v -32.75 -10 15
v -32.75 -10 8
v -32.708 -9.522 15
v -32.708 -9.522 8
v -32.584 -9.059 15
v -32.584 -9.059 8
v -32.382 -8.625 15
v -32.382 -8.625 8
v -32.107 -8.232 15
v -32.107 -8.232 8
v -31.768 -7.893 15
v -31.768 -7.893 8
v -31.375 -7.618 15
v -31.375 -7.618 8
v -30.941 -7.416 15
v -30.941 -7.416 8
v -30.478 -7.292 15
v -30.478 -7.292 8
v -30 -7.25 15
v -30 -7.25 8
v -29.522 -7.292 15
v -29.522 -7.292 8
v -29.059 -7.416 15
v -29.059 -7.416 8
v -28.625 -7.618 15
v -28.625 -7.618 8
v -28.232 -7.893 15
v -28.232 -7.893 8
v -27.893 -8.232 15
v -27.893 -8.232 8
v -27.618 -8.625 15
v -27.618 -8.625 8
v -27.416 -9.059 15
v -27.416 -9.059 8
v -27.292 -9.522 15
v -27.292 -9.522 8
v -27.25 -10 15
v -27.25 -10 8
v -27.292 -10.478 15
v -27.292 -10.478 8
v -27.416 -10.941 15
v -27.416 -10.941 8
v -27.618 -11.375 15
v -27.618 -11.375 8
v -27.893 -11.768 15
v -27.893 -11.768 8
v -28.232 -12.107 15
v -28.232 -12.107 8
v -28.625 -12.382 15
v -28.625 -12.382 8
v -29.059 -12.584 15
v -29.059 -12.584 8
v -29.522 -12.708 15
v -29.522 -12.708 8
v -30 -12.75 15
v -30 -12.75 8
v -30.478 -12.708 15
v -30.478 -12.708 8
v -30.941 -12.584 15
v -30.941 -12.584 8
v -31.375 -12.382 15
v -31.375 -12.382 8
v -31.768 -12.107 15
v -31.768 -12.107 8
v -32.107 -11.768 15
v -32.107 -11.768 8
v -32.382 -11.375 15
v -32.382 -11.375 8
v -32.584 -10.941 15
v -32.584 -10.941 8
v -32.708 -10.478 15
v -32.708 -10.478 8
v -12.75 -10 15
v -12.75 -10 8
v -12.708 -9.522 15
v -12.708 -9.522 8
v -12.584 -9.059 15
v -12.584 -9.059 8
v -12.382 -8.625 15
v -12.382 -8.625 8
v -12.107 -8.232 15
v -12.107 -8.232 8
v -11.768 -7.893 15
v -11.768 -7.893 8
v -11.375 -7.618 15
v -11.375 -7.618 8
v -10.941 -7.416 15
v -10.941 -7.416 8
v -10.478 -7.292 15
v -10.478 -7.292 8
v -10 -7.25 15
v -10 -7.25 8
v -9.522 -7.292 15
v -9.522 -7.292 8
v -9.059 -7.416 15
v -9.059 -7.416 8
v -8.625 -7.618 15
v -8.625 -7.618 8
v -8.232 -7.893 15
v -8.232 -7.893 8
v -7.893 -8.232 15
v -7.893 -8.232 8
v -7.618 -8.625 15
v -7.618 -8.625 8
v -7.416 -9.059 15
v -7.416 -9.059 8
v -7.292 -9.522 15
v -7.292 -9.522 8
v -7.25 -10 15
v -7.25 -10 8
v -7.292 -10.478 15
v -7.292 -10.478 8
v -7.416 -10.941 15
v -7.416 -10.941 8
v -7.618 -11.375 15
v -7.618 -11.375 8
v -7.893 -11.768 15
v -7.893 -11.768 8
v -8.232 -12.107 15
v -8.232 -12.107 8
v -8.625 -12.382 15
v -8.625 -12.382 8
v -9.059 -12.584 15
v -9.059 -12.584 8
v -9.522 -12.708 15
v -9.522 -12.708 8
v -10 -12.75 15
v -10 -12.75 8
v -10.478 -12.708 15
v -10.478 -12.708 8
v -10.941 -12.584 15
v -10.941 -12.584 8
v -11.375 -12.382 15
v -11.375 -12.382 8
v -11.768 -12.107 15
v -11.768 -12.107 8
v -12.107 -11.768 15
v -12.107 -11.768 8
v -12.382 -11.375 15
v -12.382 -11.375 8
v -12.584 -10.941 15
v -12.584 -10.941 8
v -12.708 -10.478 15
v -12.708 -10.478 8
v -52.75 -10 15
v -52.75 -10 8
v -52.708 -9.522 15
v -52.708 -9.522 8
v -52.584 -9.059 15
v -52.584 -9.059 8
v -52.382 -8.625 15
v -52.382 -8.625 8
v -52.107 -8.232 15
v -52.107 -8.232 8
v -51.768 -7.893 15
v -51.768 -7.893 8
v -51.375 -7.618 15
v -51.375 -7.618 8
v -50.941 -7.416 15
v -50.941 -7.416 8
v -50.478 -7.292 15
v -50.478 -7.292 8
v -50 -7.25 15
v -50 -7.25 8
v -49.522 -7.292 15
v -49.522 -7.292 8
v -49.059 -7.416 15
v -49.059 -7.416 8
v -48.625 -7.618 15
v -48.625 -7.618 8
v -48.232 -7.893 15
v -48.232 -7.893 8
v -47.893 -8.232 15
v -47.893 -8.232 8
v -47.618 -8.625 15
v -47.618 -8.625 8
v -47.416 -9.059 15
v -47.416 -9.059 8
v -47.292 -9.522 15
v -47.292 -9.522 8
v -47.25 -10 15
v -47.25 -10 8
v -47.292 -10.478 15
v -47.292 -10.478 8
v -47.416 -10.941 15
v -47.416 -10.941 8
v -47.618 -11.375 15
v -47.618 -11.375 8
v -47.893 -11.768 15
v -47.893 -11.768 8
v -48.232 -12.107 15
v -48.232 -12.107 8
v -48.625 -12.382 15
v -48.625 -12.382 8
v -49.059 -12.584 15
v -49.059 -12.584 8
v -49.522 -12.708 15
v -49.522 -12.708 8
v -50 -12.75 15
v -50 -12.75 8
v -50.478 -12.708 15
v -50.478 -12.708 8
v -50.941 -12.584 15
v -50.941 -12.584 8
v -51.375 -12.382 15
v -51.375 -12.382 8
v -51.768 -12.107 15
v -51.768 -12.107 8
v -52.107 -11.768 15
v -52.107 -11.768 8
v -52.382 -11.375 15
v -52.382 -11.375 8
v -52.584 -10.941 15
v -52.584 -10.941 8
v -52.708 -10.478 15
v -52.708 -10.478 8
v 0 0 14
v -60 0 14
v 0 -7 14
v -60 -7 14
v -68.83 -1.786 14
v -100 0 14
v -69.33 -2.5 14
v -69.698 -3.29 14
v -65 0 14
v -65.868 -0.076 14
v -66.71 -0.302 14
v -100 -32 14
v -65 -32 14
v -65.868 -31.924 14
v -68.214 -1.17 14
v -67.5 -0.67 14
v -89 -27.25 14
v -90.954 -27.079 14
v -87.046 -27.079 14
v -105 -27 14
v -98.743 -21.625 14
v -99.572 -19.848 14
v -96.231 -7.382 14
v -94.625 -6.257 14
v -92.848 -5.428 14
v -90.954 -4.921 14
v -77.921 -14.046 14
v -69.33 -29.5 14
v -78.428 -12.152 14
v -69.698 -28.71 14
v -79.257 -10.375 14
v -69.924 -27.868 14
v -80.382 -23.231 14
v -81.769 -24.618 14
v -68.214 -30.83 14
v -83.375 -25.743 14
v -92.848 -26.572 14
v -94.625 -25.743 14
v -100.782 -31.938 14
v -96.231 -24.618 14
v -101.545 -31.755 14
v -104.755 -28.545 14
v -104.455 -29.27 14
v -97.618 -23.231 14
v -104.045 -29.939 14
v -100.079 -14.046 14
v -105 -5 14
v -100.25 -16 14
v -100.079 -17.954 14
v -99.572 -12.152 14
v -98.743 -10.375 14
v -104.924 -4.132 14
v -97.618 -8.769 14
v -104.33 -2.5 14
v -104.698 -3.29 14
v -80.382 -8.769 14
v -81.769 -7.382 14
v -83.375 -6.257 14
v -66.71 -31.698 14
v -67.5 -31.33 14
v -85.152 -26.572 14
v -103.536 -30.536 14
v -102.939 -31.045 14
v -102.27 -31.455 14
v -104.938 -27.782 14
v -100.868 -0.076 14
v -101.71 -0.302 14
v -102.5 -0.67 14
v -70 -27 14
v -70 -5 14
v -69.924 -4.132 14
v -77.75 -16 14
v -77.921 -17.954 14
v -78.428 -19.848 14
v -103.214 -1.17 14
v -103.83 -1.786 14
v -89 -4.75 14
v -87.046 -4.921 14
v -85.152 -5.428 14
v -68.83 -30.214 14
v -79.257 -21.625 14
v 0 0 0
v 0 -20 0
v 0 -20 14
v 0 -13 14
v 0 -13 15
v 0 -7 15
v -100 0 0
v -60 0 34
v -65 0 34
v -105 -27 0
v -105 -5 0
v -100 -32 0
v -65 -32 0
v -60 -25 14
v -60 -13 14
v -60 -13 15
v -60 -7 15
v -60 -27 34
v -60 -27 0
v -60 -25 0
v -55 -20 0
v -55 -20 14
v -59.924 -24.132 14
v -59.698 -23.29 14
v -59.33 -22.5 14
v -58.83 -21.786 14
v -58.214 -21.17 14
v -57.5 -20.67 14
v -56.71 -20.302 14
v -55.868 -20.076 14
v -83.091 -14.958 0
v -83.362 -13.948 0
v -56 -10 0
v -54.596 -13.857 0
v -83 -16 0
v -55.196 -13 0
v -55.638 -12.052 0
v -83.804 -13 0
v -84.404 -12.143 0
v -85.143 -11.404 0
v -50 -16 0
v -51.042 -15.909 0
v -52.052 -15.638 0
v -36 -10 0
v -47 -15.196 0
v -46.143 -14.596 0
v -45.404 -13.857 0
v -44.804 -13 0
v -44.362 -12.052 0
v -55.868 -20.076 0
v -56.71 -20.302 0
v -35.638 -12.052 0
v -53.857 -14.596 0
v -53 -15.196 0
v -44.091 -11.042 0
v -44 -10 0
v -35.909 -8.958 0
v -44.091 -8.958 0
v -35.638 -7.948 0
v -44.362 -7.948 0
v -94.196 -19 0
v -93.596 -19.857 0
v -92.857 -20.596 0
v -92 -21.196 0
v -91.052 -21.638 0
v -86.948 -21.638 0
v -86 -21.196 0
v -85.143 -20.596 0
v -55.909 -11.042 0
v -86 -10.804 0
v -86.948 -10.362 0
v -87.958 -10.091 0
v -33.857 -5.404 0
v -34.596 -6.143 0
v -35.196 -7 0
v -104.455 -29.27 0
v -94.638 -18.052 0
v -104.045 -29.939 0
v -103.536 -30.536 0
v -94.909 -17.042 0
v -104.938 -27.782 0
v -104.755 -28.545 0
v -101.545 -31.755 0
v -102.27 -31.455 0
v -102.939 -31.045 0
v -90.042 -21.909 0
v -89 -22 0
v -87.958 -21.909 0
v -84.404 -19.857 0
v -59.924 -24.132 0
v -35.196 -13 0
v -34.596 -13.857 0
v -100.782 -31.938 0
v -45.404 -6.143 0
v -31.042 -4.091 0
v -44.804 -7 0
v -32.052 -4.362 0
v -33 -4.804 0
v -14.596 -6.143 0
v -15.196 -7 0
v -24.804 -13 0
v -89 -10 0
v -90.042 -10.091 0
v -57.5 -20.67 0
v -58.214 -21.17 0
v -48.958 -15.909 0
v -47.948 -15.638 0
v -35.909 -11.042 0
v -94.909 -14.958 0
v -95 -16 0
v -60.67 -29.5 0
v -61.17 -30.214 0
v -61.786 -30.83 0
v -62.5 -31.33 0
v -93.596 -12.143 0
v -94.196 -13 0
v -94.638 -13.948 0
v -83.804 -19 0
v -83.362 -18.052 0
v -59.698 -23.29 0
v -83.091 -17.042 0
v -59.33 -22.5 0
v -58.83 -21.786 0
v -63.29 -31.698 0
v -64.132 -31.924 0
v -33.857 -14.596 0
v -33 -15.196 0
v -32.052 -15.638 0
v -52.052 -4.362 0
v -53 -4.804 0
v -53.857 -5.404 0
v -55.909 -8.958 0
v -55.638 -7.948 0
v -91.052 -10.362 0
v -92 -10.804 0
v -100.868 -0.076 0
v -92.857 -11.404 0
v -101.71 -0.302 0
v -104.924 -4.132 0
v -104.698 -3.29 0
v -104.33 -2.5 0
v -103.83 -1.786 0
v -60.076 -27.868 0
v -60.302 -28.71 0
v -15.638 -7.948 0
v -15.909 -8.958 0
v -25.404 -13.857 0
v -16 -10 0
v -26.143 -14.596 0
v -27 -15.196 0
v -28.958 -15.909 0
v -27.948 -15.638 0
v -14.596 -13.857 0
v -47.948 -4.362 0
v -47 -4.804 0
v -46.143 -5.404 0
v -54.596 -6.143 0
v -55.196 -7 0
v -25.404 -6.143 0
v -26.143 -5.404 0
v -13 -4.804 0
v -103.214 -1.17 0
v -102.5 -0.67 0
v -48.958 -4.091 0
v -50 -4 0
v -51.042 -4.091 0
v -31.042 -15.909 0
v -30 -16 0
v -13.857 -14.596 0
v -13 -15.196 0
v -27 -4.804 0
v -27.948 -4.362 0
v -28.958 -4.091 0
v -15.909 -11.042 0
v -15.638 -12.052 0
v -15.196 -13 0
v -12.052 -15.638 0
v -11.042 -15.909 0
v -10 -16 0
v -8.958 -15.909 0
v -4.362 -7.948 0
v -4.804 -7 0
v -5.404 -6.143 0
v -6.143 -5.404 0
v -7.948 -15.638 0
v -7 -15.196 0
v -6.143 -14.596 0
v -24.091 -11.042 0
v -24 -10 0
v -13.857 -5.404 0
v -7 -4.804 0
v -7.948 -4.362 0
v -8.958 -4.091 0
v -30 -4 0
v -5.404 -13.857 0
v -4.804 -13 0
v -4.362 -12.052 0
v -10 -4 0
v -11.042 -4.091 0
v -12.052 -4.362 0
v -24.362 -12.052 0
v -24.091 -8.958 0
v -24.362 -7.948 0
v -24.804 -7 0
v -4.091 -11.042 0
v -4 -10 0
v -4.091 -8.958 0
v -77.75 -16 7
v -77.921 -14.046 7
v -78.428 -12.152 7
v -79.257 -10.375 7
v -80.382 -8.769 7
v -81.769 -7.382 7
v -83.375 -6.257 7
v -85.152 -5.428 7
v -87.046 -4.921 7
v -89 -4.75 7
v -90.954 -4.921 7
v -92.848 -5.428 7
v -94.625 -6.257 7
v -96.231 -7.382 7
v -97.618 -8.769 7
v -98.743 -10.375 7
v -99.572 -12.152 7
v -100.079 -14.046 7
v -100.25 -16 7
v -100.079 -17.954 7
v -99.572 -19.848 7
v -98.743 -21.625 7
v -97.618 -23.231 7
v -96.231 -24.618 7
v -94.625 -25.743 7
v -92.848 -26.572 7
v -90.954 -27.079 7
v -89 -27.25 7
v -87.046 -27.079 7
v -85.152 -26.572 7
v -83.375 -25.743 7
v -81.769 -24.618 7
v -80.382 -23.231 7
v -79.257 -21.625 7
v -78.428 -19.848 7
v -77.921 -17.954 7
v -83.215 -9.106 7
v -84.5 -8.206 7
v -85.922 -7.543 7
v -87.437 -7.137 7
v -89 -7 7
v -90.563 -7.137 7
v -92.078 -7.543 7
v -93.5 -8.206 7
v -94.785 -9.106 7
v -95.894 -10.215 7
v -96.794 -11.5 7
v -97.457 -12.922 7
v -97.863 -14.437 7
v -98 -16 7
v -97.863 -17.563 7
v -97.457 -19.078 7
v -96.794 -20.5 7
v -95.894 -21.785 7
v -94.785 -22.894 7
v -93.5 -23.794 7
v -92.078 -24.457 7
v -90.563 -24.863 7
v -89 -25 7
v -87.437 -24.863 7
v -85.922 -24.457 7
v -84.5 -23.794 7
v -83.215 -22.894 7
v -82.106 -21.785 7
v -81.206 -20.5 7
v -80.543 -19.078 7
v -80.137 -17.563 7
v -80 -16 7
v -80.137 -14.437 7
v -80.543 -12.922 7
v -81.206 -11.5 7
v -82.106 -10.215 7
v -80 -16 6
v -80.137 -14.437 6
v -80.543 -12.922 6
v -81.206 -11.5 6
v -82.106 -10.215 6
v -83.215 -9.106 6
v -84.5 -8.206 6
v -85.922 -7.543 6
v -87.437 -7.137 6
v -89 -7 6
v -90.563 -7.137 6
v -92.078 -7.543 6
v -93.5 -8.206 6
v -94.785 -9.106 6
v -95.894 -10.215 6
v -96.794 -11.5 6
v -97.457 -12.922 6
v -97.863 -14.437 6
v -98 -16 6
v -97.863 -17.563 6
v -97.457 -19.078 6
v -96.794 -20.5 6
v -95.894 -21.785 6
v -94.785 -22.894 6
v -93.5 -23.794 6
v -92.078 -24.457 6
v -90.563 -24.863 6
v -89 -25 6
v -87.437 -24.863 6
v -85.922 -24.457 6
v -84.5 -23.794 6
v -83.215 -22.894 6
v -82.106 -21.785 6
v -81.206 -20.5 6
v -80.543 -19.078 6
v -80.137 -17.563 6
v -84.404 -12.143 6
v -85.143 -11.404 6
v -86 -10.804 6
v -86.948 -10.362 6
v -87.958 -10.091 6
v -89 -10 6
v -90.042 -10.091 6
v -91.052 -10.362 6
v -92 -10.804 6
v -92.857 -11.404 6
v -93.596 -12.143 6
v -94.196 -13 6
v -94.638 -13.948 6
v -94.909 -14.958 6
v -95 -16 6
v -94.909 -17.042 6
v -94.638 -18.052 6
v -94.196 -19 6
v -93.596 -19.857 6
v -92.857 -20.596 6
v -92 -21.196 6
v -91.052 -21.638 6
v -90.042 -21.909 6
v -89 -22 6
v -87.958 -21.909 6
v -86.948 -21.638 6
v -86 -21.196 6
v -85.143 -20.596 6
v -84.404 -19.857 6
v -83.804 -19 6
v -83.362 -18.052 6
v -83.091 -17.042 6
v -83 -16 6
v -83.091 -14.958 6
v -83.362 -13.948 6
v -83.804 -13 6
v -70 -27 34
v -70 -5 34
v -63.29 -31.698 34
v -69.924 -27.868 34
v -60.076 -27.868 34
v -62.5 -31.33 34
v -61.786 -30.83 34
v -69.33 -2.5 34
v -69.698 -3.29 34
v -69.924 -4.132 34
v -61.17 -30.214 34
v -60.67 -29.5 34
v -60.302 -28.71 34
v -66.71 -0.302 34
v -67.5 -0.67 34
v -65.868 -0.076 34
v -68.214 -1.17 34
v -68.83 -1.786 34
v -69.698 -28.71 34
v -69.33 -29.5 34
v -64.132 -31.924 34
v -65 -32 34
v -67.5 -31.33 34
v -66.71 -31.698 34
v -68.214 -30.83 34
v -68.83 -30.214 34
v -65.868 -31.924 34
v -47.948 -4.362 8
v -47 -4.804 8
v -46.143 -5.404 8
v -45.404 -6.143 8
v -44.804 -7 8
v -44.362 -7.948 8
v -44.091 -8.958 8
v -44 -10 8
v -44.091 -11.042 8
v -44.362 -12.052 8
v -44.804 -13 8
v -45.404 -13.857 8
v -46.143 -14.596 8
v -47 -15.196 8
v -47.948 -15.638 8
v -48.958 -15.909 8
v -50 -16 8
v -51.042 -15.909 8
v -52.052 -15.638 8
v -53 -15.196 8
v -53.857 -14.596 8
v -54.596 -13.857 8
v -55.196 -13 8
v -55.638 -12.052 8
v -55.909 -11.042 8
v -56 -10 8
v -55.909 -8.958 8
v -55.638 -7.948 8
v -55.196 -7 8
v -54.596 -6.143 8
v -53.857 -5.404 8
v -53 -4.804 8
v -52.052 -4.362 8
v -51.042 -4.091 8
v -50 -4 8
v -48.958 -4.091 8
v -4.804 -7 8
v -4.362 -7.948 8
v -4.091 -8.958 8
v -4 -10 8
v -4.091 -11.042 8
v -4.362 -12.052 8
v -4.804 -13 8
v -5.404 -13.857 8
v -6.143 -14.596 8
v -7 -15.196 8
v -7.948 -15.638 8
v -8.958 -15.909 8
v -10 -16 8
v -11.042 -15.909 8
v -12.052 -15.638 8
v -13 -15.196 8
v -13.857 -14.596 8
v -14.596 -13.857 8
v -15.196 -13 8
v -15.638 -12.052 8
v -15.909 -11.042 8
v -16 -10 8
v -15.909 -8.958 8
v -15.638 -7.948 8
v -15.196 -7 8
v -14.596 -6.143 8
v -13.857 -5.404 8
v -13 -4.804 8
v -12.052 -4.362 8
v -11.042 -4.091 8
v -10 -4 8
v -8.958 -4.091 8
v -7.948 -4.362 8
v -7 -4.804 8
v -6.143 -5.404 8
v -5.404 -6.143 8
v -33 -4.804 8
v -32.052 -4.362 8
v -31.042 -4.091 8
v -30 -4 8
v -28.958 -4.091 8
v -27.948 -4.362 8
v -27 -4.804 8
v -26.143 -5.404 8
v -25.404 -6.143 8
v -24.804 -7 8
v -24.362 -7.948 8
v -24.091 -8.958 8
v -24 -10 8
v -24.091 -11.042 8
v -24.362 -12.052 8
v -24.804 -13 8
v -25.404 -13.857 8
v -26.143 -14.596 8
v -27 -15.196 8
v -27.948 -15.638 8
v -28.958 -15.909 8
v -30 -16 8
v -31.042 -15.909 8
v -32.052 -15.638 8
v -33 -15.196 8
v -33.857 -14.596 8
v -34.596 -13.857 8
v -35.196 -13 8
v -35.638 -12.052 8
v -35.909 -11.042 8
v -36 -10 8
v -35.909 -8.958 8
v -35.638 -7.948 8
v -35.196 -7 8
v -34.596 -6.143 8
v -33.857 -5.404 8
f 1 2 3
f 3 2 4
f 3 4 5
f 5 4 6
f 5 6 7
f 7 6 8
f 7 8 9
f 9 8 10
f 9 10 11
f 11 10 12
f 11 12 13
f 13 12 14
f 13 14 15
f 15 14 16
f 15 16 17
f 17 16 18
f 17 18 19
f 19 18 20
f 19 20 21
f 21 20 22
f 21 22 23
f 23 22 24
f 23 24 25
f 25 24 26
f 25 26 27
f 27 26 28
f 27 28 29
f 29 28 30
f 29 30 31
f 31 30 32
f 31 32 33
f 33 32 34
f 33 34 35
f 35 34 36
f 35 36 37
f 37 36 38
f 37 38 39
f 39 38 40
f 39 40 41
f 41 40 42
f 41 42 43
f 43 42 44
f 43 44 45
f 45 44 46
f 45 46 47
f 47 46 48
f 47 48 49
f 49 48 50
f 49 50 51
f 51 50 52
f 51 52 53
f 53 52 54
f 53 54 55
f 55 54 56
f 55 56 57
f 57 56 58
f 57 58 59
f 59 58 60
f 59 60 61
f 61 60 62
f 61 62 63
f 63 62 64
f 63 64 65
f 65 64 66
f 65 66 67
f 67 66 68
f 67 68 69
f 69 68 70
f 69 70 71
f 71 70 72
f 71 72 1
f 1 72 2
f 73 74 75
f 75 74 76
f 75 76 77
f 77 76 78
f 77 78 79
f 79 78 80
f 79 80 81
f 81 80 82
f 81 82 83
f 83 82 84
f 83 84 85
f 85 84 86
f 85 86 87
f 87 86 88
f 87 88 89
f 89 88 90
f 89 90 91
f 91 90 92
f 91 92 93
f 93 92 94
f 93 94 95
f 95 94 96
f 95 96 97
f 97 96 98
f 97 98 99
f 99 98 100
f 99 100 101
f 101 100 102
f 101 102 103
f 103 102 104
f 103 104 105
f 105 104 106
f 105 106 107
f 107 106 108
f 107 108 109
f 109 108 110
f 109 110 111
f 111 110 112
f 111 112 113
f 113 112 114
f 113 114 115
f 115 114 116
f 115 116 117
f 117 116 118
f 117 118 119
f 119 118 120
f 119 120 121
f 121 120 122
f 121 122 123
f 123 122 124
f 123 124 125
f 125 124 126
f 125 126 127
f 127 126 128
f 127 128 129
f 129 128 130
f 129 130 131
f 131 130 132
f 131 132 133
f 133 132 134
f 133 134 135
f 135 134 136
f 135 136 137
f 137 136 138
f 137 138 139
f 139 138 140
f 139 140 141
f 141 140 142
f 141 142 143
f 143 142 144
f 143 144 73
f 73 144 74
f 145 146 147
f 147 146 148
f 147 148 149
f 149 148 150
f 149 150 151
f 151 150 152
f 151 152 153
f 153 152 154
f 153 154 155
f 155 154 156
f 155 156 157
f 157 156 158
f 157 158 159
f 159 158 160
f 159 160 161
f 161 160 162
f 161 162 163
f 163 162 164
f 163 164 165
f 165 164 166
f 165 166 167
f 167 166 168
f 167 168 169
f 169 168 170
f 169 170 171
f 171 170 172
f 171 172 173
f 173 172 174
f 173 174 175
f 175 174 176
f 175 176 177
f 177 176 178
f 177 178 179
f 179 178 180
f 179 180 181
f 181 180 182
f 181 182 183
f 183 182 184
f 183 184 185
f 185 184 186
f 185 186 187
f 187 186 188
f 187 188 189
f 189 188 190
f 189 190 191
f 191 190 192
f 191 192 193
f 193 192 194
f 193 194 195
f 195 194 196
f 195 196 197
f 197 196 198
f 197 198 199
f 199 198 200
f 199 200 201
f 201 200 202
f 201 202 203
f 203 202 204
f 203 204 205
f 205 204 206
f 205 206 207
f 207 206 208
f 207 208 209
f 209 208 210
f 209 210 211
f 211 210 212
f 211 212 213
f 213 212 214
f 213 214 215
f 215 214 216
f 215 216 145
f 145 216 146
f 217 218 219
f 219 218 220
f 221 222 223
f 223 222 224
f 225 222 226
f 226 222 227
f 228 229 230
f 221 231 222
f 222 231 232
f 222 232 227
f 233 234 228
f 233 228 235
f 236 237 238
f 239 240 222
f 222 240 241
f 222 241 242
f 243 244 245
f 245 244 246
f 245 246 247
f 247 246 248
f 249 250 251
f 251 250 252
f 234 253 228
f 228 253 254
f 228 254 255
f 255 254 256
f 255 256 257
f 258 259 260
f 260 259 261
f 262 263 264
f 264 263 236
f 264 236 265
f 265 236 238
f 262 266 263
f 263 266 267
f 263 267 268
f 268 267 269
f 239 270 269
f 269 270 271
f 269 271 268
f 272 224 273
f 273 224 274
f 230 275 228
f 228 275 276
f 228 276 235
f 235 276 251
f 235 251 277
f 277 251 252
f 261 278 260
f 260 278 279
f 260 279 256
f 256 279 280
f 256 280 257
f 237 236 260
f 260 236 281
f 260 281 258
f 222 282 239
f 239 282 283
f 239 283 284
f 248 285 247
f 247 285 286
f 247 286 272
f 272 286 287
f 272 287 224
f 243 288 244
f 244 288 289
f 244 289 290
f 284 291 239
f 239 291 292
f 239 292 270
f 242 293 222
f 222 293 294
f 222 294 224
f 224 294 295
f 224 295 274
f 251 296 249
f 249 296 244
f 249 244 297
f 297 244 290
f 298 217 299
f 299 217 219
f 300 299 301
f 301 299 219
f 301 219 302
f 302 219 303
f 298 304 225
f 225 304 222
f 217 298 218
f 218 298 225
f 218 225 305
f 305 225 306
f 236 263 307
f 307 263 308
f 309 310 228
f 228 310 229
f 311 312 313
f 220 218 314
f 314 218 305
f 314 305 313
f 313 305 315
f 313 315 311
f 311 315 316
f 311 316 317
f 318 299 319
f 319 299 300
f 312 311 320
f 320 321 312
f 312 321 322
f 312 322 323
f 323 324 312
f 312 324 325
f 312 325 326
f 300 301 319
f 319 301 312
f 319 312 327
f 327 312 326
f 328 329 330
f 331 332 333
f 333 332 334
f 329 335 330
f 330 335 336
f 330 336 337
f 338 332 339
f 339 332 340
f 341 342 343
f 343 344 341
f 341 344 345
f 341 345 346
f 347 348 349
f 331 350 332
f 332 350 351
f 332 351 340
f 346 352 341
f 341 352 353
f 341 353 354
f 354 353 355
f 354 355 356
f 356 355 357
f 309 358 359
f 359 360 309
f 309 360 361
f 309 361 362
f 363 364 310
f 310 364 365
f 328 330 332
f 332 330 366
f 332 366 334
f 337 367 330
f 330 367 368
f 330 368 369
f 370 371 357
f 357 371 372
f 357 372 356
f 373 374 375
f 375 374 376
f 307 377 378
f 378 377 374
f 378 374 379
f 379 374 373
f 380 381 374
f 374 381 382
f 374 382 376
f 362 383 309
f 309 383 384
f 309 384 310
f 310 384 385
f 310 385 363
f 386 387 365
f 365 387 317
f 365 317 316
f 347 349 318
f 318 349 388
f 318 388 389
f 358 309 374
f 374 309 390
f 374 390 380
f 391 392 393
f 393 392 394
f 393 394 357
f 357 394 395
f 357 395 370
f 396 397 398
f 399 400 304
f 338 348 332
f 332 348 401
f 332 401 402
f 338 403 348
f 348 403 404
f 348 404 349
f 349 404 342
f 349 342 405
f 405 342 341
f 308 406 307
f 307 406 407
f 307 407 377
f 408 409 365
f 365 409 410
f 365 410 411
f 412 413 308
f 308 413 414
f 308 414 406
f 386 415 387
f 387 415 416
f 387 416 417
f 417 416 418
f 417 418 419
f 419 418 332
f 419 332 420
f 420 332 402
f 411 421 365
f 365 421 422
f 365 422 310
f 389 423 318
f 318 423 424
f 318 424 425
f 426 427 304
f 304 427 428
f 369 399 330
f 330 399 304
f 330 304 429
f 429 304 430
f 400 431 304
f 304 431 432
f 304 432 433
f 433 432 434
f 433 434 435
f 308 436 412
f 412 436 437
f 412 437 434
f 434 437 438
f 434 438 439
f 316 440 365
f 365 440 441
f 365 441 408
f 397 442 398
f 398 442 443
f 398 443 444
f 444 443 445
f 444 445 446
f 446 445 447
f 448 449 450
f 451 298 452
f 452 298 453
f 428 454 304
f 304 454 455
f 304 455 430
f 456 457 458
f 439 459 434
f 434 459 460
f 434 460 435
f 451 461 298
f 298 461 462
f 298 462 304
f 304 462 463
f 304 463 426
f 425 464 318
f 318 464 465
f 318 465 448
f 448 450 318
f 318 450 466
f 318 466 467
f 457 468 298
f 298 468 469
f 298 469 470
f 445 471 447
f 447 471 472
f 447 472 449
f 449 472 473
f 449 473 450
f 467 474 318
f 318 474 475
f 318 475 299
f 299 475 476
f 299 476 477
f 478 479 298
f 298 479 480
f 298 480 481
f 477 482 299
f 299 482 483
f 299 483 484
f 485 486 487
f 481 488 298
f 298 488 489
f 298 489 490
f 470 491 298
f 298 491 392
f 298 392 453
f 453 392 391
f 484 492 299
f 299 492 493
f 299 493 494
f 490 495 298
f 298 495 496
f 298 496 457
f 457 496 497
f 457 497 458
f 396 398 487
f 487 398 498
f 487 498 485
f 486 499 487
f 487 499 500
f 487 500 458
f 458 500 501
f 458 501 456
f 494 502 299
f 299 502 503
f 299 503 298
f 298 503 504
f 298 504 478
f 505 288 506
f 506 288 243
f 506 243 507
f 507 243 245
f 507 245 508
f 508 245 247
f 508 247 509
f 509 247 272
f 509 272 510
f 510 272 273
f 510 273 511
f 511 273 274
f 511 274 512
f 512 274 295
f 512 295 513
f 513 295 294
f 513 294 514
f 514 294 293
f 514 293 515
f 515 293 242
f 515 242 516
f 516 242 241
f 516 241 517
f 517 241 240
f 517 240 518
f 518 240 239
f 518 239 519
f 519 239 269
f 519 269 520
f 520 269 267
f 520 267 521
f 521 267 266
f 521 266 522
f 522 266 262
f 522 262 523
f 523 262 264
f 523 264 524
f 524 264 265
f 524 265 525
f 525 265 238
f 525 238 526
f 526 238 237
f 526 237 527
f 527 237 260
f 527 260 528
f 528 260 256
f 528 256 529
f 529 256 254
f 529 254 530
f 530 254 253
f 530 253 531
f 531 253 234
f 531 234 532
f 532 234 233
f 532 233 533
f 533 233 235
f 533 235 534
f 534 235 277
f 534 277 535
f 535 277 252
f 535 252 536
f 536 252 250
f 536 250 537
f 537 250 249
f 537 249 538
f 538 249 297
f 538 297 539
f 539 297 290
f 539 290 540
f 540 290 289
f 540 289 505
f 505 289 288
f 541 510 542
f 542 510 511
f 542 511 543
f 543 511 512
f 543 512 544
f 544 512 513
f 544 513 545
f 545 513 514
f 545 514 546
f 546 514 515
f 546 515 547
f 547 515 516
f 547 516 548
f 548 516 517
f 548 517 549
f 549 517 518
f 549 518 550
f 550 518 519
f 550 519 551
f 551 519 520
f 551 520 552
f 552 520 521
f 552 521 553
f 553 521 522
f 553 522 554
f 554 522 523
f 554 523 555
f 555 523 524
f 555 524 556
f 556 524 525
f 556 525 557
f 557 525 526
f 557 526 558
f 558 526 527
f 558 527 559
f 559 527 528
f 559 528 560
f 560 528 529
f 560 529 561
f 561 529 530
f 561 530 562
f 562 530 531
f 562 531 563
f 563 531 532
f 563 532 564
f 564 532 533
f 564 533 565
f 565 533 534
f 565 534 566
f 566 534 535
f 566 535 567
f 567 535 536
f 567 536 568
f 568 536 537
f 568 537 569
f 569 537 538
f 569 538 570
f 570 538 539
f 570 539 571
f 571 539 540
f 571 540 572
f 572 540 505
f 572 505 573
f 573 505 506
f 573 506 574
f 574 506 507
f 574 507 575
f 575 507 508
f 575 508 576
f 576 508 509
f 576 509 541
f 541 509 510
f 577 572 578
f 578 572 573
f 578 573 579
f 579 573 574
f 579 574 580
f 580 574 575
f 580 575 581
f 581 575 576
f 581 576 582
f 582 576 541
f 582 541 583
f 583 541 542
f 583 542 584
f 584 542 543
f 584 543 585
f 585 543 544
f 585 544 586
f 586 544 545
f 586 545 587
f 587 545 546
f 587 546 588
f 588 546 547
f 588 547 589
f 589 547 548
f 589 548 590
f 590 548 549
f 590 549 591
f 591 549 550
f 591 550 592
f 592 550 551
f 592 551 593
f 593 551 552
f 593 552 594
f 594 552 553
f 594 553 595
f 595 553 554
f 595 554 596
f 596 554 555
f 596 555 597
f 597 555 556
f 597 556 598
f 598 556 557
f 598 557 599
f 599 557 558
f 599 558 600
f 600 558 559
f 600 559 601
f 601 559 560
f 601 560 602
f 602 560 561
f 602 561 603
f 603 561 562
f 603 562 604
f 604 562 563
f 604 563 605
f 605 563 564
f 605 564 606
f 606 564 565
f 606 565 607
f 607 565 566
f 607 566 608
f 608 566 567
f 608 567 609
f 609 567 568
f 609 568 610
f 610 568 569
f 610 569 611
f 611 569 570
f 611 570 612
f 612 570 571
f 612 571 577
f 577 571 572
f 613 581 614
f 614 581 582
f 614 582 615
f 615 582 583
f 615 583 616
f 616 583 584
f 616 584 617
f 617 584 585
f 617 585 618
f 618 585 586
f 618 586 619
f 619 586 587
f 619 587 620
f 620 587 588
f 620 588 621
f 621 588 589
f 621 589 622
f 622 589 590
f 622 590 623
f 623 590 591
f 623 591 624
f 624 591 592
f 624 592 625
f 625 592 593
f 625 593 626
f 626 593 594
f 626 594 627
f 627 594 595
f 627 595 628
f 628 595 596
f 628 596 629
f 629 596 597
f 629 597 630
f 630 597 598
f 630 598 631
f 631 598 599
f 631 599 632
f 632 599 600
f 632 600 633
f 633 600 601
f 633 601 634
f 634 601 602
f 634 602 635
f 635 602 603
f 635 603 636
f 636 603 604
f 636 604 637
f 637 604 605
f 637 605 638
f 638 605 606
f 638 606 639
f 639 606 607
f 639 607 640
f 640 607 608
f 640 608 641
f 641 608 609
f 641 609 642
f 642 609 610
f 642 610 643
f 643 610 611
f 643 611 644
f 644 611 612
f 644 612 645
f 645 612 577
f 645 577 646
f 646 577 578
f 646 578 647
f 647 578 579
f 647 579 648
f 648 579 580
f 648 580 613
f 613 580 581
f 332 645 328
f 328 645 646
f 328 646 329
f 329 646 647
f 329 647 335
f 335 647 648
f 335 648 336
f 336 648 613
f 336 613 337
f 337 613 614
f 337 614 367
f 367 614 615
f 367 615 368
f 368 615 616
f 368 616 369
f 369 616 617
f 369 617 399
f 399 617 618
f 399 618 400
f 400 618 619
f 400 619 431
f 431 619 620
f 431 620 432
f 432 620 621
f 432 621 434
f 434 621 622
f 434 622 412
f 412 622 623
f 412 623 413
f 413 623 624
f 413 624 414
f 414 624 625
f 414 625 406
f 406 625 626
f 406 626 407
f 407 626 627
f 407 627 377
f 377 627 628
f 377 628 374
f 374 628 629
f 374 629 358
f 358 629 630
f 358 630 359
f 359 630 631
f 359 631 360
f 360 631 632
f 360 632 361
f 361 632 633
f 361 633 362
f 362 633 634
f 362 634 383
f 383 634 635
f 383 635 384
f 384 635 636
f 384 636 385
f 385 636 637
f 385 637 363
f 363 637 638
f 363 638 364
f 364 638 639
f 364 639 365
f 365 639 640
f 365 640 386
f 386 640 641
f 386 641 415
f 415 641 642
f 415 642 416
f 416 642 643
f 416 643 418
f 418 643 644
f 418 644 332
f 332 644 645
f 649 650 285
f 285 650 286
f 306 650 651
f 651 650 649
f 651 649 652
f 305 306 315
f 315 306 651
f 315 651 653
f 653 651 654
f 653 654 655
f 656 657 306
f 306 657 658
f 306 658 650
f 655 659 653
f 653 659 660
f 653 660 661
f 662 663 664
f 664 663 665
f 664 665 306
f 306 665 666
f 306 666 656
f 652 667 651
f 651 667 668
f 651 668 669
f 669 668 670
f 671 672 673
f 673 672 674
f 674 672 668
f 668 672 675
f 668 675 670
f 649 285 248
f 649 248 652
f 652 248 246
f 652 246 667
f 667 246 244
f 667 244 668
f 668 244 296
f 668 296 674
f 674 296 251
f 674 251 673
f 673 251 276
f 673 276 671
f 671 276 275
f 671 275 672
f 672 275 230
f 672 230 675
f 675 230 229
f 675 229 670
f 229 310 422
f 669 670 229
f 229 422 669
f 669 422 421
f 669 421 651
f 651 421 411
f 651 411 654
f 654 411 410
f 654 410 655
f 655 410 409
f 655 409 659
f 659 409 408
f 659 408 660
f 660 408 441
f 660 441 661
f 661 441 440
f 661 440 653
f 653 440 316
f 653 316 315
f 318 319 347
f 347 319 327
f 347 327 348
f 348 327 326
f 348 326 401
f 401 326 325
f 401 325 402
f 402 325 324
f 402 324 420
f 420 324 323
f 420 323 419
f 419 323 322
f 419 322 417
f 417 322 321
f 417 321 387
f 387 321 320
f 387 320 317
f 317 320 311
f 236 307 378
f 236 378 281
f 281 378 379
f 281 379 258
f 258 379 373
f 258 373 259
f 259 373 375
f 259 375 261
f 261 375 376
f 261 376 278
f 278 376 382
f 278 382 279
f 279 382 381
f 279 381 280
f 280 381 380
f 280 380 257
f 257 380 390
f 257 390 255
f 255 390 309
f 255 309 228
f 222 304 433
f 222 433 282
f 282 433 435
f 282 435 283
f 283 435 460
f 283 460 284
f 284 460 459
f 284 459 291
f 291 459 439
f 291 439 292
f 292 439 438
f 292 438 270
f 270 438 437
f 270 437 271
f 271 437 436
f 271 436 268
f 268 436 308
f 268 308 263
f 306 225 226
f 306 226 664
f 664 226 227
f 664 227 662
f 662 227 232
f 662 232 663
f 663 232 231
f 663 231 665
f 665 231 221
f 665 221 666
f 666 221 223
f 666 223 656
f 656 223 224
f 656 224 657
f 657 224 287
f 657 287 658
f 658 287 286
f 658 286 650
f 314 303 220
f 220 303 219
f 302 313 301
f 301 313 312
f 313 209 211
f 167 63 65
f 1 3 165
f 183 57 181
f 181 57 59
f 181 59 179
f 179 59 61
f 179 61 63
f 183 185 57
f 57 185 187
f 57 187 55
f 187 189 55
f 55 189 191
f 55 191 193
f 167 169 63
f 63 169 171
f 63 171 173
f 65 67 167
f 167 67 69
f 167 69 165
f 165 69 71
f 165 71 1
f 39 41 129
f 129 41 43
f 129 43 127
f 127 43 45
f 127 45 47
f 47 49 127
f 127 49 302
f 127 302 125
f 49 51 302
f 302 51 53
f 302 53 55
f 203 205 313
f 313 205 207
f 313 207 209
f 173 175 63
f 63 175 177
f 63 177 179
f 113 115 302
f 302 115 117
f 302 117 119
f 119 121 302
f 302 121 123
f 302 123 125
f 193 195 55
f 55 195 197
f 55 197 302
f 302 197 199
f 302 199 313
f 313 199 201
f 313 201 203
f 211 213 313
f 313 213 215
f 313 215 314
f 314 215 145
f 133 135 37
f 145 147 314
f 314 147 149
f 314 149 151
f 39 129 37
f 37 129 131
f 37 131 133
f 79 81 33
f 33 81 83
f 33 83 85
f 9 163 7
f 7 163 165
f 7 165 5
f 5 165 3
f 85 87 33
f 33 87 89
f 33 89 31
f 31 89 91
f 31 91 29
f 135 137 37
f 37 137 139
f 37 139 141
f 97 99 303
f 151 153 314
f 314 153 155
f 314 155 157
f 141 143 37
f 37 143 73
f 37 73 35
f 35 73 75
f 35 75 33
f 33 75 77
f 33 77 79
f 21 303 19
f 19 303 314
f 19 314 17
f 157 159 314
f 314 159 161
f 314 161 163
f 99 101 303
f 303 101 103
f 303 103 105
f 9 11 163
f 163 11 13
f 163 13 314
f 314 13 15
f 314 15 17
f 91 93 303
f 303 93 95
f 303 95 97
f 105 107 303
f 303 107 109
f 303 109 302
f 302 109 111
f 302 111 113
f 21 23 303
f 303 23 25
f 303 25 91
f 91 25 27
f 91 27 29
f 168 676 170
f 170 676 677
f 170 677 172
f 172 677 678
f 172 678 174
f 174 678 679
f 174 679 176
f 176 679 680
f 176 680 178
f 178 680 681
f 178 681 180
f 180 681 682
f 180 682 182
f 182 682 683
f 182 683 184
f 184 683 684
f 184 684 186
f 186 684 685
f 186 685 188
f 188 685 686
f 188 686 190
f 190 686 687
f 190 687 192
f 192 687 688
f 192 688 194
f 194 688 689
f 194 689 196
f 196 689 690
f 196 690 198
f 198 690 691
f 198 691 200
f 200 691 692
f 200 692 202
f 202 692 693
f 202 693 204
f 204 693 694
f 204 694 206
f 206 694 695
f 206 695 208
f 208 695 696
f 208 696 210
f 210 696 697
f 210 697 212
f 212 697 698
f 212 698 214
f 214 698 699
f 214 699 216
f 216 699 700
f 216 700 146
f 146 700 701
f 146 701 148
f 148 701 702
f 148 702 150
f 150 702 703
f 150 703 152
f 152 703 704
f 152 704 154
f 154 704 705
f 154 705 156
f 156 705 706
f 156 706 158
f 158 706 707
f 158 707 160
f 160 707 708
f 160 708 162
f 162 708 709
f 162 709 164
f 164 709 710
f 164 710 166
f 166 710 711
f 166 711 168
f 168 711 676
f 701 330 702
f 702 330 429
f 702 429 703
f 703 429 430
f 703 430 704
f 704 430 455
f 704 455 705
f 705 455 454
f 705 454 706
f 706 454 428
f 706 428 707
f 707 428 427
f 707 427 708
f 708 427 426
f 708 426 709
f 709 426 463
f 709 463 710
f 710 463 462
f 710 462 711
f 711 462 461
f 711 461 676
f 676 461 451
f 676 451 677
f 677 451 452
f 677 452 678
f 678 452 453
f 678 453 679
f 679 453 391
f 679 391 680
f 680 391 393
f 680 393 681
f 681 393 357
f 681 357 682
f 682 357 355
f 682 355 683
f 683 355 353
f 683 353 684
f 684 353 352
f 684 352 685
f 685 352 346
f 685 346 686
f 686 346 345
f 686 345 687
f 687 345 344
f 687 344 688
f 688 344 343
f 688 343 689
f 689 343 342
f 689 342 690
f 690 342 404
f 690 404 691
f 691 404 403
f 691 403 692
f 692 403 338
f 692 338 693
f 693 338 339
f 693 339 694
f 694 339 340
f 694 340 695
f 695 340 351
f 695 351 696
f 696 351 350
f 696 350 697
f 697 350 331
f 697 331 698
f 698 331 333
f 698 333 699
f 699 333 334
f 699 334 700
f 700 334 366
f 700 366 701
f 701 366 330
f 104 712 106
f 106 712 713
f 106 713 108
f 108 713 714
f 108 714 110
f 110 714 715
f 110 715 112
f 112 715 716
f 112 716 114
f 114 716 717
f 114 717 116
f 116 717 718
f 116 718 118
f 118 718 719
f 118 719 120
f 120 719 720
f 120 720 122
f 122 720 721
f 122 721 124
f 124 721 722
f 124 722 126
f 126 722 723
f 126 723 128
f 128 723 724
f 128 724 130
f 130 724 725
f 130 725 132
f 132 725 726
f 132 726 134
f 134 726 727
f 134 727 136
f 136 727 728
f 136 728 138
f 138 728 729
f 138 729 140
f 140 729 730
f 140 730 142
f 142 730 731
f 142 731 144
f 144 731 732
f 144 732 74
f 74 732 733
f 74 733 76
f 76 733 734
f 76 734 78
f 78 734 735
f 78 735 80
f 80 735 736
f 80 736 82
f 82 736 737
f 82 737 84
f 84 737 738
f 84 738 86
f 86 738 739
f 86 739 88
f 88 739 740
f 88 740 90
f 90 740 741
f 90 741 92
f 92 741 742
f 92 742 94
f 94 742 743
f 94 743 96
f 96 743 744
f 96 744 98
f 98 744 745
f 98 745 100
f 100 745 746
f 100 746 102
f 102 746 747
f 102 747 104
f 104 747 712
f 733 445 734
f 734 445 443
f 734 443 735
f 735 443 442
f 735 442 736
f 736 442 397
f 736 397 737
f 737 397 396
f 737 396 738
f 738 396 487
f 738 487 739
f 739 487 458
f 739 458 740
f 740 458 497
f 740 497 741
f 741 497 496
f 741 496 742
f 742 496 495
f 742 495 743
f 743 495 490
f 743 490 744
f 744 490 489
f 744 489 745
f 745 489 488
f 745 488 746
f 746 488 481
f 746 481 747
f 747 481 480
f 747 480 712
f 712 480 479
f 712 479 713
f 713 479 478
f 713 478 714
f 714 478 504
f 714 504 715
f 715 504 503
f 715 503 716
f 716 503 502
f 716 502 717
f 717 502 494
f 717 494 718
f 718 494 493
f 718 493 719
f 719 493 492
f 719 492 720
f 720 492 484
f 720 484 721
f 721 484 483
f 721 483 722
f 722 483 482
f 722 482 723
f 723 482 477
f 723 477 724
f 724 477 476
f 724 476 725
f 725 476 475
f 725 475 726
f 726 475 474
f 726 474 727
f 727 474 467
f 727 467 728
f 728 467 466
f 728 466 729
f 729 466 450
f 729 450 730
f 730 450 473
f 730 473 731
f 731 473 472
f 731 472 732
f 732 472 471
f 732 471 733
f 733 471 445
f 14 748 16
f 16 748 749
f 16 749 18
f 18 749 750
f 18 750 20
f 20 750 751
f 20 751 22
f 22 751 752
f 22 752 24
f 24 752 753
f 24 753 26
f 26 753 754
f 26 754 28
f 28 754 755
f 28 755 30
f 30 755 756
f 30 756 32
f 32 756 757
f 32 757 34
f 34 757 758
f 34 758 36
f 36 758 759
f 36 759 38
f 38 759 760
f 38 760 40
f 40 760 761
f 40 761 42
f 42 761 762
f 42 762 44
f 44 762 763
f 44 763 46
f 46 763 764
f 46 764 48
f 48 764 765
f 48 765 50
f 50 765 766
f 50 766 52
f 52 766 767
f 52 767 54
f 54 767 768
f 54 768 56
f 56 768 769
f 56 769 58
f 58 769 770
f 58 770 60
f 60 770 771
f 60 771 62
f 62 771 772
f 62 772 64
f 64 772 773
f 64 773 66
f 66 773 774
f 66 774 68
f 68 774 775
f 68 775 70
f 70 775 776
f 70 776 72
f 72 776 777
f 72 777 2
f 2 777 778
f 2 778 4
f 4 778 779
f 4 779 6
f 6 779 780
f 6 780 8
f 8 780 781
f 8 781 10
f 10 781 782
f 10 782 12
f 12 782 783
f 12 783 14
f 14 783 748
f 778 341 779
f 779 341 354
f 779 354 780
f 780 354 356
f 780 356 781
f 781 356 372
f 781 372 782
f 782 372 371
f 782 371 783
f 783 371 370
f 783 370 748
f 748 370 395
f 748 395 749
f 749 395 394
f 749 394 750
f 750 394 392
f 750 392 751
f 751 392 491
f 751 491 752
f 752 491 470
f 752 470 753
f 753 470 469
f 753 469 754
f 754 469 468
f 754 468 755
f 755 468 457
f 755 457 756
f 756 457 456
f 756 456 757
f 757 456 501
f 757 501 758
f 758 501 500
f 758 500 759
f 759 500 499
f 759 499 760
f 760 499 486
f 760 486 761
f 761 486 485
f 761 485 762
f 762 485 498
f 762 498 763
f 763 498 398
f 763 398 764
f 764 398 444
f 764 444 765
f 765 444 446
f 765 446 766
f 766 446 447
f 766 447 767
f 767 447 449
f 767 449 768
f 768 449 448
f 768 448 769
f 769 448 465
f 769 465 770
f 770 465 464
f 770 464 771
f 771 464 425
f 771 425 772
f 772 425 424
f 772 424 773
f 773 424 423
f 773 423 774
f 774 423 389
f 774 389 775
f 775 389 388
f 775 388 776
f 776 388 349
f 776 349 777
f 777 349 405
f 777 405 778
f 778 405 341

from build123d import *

# Parameters (mm, degrees)
SALIENTE_EXTRUIR1_DEPTH = 14
CROQUIS3_R              = 11.25
CORTAR_EXTRUIR1_DEPTH   = 7
CROQUIS4_R              = 9
CORTAR_EXTRUIR2_DEPTH   = 1
CORTAR_EXTRUIR3_REACH   = 112.059
CROQUIS5_R              = 6
CROQUIS8_W              = 10
CROQUIS8_H              = 32
SALIENTE_EXTRUIR4_DEPTH = 20
REDONDEO1_R             = 5
CROQUIS10_W             = 60
CROQUIS10_H             = 6
SALIENTE_EXTRUIR7_DEPTH = 1
CROQUIS6_R              = 2.75
CORTAR_EXTRUIR6_DEPTH   = 40
CROQUIS11_R             = 6
CORTAR_EXTRUIR7_DEPTH   = 8


with BuildPart() as part:
    # Croquis2 → Saliente-Extruir1 (new body)
    with BuildSketch(Plane.XY):
        Polygon((0, 0), (-105, 0), (-105, -32), (-60, -32), (-60, -20), (0, -20), align=None)
    extrude(amount=SALIENTE_EXTRUIR1_DEPTH)

    # Croquis3 → Cortar-Extruir1 (cut)
    with BuildSketch(Plane.XY.offset(14)):
        with Locations((-89, -16)):
            Circle(CROQUIS3_R)
    extrude(amount=-CORTAR_EXTRUIR1_DEPTH, mode=Mode.SUBTRACT)

    # Croquis4 → Cortar-Extruir2 (cut)
    with BuildSketch(Plane.XY.offset(7)):
        with Locations((-89, -16)):
            Circle(CROQUIS4_R)
    extrude(amount=-CORTAR_EXTRUIR2_DEPTH, mode=Mode.SUBTRACT)

    # Croquis5 → Cortar-Extruir3 (cut, up to next)
    with BuildSketch(Plane.XY.offset(6), mode=Mode.PRIVATE) as cortar_extruir3_sk1:
        with Locations((-89, -16)):
            Circle(CROQUIS5_R)
    cortar_extruir3_tool1 = extrude(cortar_extruir3_sk1.sketch, amount=-CORTAR_EXTRUIR3_REACH, mode=Mode.PRIVATE) & part.part
    add(cortar_extruir3_tool1.solids().sort_by_distance((-89, -16, 6))[0], mode=Mode.SUBTRACT)

    # Croquis8 → Saliente-Extruir4 (add)
    with BuildSketch(Plane.XY.offset(14)):
        with Locations((-65, -16)):
            Rectangle(CROQUIS8_W, CROQUIS8_H)
    extrude(amount=SALIENTE_EXTRUIR4_DEPTH)

    # Redondeo1
    redondeo1_edges = [part.edges().sort_by_distance(p)[0] for p in [
        (-70, 0, 24),
        (-70, -32, 24),
        (-60, -20, 7),
        (-105, -32, 7),
        (-105, 0, 7),
        (-60, -32, 17),
    ]]
    fillet(redondeo1_edges, radius=REDONDEO1_R - 0.0001)  # a hair under: the kernel refuses the full size

    # Croquis10 → Saliente-Extruir7 (add)
    with BuildSketch(Plane.XY.offset(14)):
        with Locations((-30, -10)):
            Rectangle(CROQUIS10_W, CROQUIS10_H)
    extrude(amount=SALIENTE_EXTRUIR7_DEPTH)

    # Croquis6 → Cortar-Extruir6 (cut)
    with BuildSketch(Plane(origin=(0, 0, 0), x_dir=(-1, 0, 0), z_dir=(0, 0, -1))):
        with Locations((10, -10)):
            Circle(CROQUIS6_R)
        with Locations((30, -10)):
            Circle(CROQUIS6_R)
        with Locations((50, -10)):
            Circle(CROQUIS6_R)
    extrude(amount=-CORTAR_EXTRUIR6_DEPTH, mode=Mode.SUBTRACT)

    # Croquis11 → Cortar-Extruir7 (cut)
    with BuildSketch(Plane(origin=(0, 0, 0), x_dir=(-1, 0, 0), z_dir=(0, 0, -1))):
        with Locations((10, -10)):
            Circle(CROQUIS11_R)
        with Locations((30, -10)):
            Circle(CROQUIS11_R)
        with Locations((50, -10)):
            Circle(CROQUIS11_R)
    extrude(amount=-CORTAR_EXTRUIR7_DEPTH, mode=Mode.SUBTRACT)


solid = part.part
